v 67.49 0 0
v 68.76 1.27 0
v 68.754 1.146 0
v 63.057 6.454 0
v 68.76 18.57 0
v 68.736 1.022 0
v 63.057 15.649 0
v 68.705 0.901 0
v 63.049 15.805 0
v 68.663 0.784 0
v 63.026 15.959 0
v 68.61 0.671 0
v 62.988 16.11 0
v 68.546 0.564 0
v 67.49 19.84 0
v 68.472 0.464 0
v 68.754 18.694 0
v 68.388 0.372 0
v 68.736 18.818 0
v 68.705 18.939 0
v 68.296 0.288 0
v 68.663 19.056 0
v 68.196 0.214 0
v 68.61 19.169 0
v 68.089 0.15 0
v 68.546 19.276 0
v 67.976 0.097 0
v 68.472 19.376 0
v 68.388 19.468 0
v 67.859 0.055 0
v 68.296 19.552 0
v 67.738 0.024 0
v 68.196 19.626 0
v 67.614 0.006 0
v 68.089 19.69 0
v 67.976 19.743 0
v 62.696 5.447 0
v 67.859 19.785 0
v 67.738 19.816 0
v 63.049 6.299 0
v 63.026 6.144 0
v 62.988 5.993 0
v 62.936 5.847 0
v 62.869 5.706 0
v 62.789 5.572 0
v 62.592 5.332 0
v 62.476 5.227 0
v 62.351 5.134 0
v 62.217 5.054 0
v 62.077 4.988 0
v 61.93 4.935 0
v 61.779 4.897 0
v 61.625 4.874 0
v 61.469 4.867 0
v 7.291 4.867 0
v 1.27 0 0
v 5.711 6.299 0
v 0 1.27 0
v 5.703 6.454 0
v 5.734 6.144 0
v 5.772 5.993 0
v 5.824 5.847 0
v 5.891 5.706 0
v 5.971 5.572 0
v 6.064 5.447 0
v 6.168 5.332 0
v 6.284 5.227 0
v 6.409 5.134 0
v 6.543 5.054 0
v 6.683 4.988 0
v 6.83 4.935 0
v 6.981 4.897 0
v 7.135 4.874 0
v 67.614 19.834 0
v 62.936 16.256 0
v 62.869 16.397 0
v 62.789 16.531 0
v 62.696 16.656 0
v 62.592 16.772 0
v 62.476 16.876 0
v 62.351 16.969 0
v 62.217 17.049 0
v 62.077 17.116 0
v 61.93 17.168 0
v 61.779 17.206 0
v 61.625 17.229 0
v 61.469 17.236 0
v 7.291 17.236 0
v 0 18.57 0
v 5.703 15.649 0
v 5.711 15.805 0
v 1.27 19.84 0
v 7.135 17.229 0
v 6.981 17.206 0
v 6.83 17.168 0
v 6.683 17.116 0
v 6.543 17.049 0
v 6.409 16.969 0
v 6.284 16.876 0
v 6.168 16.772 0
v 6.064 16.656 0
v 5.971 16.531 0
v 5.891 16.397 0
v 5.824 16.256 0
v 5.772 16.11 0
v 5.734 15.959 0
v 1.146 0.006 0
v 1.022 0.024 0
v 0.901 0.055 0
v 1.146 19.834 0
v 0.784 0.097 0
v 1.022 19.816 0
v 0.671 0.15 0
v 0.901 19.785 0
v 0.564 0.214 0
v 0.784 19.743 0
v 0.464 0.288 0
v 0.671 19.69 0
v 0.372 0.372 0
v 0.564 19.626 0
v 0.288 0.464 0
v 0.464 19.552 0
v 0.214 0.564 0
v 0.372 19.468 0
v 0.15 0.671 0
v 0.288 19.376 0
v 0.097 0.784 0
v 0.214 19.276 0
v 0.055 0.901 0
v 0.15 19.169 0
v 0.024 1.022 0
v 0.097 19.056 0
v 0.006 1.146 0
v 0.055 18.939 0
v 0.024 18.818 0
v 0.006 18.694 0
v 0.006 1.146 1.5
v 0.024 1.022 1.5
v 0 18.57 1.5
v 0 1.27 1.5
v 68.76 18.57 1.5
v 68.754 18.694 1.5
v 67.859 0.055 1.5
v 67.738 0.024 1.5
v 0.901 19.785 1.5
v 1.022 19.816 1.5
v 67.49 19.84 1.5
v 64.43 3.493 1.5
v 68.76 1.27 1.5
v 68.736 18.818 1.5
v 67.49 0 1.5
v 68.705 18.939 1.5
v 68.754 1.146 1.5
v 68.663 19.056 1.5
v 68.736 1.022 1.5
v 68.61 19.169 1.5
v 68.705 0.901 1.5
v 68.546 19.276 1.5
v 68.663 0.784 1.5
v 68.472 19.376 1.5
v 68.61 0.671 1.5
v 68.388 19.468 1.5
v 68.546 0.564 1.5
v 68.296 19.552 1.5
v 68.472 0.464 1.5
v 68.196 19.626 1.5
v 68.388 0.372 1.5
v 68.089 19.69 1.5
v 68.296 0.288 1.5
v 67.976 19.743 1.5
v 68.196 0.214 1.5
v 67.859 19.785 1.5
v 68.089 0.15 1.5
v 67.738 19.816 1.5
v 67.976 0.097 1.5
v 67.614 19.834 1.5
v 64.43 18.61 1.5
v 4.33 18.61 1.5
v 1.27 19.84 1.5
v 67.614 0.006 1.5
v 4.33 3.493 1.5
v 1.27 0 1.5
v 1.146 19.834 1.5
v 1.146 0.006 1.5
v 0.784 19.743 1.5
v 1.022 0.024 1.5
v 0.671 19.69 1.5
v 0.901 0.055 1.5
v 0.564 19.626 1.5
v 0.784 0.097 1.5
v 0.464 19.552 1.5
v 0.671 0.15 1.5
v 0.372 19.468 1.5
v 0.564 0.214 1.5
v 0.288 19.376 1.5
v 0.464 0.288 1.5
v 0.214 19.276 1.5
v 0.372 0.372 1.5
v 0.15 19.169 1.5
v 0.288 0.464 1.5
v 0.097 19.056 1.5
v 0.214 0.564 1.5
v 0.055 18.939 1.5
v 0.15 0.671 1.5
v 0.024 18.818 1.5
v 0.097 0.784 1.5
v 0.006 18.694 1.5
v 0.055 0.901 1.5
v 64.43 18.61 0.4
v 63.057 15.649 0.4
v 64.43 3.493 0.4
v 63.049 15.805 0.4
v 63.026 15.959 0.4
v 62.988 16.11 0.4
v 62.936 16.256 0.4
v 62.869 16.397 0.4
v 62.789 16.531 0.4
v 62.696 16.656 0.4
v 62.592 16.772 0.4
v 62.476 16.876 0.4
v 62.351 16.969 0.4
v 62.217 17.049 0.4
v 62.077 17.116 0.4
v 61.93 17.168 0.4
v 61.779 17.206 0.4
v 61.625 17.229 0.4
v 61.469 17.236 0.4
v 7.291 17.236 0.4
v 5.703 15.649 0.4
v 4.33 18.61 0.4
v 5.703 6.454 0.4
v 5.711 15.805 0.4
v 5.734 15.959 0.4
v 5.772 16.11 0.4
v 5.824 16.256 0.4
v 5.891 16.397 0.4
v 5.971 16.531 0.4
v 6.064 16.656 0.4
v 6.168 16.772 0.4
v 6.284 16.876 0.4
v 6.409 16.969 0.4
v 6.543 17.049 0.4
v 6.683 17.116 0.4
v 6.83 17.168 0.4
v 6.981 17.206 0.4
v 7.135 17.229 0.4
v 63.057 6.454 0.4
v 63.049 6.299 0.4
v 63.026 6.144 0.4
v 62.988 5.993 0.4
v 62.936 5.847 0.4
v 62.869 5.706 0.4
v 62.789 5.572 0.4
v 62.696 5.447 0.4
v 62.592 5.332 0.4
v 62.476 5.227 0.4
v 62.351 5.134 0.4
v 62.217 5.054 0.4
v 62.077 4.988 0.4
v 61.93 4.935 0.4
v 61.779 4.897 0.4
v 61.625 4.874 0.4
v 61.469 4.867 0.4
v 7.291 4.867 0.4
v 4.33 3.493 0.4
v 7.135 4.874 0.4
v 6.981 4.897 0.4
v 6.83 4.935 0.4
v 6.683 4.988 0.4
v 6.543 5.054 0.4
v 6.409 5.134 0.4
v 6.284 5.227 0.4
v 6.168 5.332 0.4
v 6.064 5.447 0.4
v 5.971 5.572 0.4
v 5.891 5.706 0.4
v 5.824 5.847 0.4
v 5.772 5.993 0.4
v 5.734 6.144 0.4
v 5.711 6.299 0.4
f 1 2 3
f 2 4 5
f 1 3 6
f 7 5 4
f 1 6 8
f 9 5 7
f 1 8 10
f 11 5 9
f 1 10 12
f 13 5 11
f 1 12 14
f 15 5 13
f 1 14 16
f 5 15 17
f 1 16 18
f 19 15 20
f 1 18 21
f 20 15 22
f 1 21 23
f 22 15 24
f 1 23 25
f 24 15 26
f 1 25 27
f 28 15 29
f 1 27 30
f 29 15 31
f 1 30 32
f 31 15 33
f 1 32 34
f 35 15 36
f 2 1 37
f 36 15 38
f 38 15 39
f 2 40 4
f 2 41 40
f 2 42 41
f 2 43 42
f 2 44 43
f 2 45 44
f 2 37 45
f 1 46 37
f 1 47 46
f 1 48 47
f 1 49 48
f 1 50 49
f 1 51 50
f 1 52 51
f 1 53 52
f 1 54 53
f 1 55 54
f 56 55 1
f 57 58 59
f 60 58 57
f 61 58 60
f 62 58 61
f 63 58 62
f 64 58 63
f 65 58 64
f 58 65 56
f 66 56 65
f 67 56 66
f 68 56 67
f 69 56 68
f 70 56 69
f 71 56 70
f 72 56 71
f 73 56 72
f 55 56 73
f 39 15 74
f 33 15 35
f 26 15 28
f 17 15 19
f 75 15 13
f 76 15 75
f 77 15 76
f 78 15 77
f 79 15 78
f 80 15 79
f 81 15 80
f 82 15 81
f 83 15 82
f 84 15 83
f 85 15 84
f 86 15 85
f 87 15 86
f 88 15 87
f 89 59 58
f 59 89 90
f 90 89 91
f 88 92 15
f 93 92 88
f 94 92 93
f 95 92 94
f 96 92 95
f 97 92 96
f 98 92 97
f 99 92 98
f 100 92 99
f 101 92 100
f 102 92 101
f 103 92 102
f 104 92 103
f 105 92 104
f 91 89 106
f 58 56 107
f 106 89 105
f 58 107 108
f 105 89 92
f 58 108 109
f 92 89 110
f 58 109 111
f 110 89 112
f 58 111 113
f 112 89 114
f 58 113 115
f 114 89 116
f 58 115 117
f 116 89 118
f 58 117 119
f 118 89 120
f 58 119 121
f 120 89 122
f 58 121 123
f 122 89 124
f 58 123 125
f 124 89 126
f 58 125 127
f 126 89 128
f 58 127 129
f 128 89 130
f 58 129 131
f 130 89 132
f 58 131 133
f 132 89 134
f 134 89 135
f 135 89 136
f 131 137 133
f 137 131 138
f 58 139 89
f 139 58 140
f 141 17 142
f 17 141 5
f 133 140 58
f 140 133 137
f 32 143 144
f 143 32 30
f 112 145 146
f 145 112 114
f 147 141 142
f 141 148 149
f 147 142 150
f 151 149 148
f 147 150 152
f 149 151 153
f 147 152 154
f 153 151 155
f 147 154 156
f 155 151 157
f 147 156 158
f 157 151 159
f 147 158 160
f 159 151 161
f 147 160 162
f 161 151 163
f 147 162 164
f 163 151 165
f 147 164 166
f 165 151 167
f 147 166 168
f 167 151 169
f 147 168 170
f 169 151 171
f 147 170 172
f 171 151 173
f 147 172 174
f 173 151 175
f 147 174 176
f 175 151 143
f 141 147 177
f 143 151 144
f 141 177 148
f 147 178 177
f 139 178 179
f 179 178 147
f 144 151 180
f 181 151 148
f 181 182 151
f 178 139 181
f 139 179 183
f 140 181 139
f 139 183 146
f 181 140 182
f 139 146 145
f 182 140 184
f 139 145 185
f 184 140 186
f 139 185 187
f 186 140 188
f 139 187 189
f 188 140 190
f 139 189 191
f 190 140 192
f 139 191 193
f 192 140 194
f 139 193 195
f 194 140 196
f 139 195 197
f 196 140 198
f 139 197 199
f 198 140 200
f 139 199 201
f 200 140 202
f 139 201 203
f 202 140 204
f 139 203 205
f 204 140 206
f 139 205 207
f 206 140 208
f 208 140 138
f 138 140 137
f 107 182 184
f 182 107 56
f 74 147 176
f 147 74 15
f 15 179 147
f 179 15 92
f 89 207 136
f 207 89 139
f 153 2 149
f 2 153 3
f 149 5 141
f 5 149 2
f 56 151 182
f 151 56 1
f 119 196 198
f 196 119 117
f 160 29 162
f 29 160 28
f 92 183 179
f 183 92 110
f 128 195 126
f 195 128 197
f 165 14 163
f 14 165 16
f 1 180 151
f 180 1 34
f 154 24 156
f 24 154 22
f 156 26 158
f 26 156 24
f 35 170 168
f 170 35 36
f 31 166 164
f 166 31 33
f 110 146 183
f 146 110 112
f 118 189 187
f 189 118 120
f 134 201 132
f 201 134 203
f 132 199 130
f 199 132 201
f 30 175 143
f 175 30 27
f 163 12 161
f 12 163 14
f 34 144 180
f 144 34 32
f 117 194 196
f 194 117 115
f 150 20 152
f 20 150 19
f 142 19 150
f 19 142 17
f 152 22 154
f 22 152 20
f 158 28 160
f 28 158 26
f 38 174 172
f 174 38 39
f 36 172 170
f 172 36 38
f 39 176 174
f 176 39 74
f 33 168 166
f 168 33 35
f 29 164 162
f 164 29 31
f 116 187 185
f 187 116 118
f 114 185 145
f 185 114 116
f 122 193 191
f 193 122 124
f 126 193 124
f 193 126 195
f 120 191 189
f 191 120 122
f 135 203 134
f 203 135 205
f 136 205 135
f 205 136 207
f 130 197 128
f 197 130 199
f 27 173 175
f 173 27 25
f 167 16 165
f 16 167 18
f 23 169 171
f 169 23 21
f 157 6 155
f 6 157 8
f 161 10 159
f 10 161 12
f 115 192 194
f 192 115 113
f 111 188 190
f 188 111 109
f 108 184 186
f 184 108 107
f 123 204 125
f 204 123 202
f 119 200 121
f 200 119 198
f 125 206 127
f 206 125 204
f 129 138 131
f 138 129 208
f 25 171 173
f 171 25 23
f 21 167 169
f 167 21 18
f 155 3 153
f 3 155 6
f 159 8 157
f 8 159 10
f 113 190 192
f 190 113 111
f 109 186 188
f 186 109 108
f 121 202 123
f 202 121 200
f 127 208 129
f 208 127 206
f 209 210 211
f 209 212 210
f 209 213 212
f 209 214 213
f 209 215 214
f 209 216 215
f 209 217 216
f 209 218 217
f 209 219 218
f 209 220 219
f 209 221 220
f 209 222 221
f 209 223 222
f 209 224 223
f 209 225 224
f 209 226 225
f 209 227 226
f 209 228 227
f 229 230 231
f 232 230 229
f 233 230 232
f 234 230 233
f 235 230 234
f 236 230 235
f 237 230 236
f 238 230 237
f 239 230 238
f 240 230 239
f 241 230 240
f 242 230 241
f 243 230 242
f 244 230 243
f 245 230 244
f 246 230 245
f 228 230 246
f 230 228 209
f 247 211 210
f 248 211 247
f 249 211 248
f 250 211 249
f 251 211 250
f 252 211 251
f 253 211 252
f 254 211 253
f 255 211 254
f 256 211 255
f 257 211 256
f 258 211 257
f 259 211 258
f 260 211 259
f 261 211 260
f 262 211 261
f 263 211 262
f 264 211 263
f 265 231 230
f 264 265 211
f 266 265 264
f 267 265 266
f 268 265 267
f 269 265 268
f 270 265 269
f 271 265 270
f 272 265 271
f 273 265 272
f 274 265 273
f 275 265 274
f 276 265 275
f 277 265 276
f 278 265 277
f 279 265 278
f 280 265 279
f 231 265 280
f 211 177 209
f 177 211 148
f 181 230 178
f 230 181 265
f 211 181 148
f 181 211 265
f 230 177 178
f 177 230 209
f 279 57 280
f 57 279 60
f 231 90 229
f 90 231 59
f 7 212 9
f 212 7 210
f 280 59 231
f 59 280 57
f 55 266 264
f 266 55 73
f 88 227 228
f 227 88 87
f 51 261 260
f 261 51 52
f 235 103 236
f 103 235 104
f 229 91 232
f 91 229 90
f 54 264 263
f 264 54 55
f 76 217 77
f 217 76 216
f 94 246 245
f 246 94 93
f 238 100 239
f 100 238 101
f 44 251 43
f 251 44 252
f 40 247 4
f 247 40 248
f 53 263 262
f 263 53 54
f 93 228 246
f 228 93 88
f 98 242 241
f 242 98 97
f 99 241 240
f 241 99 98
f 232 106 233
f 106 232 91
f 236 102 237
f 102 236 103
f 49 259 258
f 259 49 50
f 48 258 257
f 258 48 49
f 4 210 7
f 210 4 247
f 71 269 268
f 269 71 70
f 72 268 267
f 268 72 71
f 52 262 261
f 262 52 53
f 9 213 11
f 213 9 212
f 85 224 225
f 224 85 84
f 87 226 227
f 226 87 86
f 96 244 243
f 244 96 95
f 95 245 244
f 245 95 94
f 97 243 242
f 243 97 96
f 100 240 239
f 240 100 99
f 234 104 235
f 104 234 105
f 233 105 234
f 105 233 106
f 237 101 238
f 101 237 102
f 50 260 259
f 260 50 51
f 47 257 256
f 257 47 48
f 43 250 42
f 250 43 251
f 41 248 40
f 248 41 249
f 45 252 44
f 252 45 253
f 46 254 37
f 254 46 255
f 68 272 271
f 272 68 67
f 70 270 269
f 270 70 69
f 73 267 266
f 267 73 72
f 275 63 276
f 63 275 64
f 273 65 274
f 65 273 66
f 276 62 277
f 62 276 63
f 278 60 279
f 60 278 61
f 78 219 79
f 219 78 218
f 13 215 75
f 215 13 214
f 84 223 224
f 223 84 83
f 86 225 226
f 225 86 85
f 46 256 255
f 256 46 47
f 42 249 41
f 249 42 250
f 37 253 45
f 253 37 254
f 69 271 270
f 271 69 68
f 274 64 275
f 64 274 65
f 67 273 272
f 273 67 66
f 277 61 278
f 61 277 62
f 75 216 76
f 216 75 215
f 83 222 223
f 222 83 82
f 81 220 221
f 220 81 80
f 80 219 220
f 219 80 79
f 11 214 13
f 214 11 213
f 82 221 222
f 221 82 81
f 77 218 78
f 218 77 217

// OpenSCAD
$fn=64;
eps = 0.04;
inch = 25.4;

panel_x = 68.76;
panel_y = 19.84;
panel_z = 1.5;
panel_r = 0.05 * inch;

lens_x = 2.363 * inch;
lens_y = 0.592 * inch;
lens_z = 0.062 * inch;

bezel_x = 2.258 * inch;
bezel_y = 0.487 * inch;
bezel_r = 1/16 * inch;

difference() {
   linear_extrude(height=panel_z) {
      hull() {
         translate([panel_r, panel_r, 0]) {
            circle(r=panel_r);
         }
         translate([panel_x-panel_r, panel_r, 0]) {
            circle(r=panel_r);
         }
         translate([panel_x-panel_r, panel_y-panel_r, 0]) {
            circle(r=panel_r);
         }
         translate([panel_r, panel_y-panel_r, 0]) {
            circle(r=panel_r);
         }
      }
   }
   translate([panel_x/2,panel_y-1.27-lens_y/2,0.4]) {
      linear_extrude(height=panel_z+2*eps) {
         square([lens_x+2*eps, lens_y+2*eps],center=true);
      }
   }
   translate([panel_x/2,panel_y-1.27-lens_y/2,-eps]) {
      linear_extrude(height=panel_z+2*eps) {
         hull() {
            translate([-bezel_x/2+bezel_r, -bezel_y/2+bezel_r, 0]) {
               circle(r=bezel_r);
            }
            translate([bezel_x/2-bezel_r, -bezel_y/2+bezel_r, 0]) {
               circle(r=bezel_r);
            }
            translate([bezel_x/2-bezel_r, bezel_y/2-bezel_r, 0]) {
               circle(r=bezel_r);
            }
            translate([-bezel_x/2+bezel_r, bezel_y/2-bezel_r, 0]) {
               circle(r=bezel_r);
            }
         }
      }
   }
}
